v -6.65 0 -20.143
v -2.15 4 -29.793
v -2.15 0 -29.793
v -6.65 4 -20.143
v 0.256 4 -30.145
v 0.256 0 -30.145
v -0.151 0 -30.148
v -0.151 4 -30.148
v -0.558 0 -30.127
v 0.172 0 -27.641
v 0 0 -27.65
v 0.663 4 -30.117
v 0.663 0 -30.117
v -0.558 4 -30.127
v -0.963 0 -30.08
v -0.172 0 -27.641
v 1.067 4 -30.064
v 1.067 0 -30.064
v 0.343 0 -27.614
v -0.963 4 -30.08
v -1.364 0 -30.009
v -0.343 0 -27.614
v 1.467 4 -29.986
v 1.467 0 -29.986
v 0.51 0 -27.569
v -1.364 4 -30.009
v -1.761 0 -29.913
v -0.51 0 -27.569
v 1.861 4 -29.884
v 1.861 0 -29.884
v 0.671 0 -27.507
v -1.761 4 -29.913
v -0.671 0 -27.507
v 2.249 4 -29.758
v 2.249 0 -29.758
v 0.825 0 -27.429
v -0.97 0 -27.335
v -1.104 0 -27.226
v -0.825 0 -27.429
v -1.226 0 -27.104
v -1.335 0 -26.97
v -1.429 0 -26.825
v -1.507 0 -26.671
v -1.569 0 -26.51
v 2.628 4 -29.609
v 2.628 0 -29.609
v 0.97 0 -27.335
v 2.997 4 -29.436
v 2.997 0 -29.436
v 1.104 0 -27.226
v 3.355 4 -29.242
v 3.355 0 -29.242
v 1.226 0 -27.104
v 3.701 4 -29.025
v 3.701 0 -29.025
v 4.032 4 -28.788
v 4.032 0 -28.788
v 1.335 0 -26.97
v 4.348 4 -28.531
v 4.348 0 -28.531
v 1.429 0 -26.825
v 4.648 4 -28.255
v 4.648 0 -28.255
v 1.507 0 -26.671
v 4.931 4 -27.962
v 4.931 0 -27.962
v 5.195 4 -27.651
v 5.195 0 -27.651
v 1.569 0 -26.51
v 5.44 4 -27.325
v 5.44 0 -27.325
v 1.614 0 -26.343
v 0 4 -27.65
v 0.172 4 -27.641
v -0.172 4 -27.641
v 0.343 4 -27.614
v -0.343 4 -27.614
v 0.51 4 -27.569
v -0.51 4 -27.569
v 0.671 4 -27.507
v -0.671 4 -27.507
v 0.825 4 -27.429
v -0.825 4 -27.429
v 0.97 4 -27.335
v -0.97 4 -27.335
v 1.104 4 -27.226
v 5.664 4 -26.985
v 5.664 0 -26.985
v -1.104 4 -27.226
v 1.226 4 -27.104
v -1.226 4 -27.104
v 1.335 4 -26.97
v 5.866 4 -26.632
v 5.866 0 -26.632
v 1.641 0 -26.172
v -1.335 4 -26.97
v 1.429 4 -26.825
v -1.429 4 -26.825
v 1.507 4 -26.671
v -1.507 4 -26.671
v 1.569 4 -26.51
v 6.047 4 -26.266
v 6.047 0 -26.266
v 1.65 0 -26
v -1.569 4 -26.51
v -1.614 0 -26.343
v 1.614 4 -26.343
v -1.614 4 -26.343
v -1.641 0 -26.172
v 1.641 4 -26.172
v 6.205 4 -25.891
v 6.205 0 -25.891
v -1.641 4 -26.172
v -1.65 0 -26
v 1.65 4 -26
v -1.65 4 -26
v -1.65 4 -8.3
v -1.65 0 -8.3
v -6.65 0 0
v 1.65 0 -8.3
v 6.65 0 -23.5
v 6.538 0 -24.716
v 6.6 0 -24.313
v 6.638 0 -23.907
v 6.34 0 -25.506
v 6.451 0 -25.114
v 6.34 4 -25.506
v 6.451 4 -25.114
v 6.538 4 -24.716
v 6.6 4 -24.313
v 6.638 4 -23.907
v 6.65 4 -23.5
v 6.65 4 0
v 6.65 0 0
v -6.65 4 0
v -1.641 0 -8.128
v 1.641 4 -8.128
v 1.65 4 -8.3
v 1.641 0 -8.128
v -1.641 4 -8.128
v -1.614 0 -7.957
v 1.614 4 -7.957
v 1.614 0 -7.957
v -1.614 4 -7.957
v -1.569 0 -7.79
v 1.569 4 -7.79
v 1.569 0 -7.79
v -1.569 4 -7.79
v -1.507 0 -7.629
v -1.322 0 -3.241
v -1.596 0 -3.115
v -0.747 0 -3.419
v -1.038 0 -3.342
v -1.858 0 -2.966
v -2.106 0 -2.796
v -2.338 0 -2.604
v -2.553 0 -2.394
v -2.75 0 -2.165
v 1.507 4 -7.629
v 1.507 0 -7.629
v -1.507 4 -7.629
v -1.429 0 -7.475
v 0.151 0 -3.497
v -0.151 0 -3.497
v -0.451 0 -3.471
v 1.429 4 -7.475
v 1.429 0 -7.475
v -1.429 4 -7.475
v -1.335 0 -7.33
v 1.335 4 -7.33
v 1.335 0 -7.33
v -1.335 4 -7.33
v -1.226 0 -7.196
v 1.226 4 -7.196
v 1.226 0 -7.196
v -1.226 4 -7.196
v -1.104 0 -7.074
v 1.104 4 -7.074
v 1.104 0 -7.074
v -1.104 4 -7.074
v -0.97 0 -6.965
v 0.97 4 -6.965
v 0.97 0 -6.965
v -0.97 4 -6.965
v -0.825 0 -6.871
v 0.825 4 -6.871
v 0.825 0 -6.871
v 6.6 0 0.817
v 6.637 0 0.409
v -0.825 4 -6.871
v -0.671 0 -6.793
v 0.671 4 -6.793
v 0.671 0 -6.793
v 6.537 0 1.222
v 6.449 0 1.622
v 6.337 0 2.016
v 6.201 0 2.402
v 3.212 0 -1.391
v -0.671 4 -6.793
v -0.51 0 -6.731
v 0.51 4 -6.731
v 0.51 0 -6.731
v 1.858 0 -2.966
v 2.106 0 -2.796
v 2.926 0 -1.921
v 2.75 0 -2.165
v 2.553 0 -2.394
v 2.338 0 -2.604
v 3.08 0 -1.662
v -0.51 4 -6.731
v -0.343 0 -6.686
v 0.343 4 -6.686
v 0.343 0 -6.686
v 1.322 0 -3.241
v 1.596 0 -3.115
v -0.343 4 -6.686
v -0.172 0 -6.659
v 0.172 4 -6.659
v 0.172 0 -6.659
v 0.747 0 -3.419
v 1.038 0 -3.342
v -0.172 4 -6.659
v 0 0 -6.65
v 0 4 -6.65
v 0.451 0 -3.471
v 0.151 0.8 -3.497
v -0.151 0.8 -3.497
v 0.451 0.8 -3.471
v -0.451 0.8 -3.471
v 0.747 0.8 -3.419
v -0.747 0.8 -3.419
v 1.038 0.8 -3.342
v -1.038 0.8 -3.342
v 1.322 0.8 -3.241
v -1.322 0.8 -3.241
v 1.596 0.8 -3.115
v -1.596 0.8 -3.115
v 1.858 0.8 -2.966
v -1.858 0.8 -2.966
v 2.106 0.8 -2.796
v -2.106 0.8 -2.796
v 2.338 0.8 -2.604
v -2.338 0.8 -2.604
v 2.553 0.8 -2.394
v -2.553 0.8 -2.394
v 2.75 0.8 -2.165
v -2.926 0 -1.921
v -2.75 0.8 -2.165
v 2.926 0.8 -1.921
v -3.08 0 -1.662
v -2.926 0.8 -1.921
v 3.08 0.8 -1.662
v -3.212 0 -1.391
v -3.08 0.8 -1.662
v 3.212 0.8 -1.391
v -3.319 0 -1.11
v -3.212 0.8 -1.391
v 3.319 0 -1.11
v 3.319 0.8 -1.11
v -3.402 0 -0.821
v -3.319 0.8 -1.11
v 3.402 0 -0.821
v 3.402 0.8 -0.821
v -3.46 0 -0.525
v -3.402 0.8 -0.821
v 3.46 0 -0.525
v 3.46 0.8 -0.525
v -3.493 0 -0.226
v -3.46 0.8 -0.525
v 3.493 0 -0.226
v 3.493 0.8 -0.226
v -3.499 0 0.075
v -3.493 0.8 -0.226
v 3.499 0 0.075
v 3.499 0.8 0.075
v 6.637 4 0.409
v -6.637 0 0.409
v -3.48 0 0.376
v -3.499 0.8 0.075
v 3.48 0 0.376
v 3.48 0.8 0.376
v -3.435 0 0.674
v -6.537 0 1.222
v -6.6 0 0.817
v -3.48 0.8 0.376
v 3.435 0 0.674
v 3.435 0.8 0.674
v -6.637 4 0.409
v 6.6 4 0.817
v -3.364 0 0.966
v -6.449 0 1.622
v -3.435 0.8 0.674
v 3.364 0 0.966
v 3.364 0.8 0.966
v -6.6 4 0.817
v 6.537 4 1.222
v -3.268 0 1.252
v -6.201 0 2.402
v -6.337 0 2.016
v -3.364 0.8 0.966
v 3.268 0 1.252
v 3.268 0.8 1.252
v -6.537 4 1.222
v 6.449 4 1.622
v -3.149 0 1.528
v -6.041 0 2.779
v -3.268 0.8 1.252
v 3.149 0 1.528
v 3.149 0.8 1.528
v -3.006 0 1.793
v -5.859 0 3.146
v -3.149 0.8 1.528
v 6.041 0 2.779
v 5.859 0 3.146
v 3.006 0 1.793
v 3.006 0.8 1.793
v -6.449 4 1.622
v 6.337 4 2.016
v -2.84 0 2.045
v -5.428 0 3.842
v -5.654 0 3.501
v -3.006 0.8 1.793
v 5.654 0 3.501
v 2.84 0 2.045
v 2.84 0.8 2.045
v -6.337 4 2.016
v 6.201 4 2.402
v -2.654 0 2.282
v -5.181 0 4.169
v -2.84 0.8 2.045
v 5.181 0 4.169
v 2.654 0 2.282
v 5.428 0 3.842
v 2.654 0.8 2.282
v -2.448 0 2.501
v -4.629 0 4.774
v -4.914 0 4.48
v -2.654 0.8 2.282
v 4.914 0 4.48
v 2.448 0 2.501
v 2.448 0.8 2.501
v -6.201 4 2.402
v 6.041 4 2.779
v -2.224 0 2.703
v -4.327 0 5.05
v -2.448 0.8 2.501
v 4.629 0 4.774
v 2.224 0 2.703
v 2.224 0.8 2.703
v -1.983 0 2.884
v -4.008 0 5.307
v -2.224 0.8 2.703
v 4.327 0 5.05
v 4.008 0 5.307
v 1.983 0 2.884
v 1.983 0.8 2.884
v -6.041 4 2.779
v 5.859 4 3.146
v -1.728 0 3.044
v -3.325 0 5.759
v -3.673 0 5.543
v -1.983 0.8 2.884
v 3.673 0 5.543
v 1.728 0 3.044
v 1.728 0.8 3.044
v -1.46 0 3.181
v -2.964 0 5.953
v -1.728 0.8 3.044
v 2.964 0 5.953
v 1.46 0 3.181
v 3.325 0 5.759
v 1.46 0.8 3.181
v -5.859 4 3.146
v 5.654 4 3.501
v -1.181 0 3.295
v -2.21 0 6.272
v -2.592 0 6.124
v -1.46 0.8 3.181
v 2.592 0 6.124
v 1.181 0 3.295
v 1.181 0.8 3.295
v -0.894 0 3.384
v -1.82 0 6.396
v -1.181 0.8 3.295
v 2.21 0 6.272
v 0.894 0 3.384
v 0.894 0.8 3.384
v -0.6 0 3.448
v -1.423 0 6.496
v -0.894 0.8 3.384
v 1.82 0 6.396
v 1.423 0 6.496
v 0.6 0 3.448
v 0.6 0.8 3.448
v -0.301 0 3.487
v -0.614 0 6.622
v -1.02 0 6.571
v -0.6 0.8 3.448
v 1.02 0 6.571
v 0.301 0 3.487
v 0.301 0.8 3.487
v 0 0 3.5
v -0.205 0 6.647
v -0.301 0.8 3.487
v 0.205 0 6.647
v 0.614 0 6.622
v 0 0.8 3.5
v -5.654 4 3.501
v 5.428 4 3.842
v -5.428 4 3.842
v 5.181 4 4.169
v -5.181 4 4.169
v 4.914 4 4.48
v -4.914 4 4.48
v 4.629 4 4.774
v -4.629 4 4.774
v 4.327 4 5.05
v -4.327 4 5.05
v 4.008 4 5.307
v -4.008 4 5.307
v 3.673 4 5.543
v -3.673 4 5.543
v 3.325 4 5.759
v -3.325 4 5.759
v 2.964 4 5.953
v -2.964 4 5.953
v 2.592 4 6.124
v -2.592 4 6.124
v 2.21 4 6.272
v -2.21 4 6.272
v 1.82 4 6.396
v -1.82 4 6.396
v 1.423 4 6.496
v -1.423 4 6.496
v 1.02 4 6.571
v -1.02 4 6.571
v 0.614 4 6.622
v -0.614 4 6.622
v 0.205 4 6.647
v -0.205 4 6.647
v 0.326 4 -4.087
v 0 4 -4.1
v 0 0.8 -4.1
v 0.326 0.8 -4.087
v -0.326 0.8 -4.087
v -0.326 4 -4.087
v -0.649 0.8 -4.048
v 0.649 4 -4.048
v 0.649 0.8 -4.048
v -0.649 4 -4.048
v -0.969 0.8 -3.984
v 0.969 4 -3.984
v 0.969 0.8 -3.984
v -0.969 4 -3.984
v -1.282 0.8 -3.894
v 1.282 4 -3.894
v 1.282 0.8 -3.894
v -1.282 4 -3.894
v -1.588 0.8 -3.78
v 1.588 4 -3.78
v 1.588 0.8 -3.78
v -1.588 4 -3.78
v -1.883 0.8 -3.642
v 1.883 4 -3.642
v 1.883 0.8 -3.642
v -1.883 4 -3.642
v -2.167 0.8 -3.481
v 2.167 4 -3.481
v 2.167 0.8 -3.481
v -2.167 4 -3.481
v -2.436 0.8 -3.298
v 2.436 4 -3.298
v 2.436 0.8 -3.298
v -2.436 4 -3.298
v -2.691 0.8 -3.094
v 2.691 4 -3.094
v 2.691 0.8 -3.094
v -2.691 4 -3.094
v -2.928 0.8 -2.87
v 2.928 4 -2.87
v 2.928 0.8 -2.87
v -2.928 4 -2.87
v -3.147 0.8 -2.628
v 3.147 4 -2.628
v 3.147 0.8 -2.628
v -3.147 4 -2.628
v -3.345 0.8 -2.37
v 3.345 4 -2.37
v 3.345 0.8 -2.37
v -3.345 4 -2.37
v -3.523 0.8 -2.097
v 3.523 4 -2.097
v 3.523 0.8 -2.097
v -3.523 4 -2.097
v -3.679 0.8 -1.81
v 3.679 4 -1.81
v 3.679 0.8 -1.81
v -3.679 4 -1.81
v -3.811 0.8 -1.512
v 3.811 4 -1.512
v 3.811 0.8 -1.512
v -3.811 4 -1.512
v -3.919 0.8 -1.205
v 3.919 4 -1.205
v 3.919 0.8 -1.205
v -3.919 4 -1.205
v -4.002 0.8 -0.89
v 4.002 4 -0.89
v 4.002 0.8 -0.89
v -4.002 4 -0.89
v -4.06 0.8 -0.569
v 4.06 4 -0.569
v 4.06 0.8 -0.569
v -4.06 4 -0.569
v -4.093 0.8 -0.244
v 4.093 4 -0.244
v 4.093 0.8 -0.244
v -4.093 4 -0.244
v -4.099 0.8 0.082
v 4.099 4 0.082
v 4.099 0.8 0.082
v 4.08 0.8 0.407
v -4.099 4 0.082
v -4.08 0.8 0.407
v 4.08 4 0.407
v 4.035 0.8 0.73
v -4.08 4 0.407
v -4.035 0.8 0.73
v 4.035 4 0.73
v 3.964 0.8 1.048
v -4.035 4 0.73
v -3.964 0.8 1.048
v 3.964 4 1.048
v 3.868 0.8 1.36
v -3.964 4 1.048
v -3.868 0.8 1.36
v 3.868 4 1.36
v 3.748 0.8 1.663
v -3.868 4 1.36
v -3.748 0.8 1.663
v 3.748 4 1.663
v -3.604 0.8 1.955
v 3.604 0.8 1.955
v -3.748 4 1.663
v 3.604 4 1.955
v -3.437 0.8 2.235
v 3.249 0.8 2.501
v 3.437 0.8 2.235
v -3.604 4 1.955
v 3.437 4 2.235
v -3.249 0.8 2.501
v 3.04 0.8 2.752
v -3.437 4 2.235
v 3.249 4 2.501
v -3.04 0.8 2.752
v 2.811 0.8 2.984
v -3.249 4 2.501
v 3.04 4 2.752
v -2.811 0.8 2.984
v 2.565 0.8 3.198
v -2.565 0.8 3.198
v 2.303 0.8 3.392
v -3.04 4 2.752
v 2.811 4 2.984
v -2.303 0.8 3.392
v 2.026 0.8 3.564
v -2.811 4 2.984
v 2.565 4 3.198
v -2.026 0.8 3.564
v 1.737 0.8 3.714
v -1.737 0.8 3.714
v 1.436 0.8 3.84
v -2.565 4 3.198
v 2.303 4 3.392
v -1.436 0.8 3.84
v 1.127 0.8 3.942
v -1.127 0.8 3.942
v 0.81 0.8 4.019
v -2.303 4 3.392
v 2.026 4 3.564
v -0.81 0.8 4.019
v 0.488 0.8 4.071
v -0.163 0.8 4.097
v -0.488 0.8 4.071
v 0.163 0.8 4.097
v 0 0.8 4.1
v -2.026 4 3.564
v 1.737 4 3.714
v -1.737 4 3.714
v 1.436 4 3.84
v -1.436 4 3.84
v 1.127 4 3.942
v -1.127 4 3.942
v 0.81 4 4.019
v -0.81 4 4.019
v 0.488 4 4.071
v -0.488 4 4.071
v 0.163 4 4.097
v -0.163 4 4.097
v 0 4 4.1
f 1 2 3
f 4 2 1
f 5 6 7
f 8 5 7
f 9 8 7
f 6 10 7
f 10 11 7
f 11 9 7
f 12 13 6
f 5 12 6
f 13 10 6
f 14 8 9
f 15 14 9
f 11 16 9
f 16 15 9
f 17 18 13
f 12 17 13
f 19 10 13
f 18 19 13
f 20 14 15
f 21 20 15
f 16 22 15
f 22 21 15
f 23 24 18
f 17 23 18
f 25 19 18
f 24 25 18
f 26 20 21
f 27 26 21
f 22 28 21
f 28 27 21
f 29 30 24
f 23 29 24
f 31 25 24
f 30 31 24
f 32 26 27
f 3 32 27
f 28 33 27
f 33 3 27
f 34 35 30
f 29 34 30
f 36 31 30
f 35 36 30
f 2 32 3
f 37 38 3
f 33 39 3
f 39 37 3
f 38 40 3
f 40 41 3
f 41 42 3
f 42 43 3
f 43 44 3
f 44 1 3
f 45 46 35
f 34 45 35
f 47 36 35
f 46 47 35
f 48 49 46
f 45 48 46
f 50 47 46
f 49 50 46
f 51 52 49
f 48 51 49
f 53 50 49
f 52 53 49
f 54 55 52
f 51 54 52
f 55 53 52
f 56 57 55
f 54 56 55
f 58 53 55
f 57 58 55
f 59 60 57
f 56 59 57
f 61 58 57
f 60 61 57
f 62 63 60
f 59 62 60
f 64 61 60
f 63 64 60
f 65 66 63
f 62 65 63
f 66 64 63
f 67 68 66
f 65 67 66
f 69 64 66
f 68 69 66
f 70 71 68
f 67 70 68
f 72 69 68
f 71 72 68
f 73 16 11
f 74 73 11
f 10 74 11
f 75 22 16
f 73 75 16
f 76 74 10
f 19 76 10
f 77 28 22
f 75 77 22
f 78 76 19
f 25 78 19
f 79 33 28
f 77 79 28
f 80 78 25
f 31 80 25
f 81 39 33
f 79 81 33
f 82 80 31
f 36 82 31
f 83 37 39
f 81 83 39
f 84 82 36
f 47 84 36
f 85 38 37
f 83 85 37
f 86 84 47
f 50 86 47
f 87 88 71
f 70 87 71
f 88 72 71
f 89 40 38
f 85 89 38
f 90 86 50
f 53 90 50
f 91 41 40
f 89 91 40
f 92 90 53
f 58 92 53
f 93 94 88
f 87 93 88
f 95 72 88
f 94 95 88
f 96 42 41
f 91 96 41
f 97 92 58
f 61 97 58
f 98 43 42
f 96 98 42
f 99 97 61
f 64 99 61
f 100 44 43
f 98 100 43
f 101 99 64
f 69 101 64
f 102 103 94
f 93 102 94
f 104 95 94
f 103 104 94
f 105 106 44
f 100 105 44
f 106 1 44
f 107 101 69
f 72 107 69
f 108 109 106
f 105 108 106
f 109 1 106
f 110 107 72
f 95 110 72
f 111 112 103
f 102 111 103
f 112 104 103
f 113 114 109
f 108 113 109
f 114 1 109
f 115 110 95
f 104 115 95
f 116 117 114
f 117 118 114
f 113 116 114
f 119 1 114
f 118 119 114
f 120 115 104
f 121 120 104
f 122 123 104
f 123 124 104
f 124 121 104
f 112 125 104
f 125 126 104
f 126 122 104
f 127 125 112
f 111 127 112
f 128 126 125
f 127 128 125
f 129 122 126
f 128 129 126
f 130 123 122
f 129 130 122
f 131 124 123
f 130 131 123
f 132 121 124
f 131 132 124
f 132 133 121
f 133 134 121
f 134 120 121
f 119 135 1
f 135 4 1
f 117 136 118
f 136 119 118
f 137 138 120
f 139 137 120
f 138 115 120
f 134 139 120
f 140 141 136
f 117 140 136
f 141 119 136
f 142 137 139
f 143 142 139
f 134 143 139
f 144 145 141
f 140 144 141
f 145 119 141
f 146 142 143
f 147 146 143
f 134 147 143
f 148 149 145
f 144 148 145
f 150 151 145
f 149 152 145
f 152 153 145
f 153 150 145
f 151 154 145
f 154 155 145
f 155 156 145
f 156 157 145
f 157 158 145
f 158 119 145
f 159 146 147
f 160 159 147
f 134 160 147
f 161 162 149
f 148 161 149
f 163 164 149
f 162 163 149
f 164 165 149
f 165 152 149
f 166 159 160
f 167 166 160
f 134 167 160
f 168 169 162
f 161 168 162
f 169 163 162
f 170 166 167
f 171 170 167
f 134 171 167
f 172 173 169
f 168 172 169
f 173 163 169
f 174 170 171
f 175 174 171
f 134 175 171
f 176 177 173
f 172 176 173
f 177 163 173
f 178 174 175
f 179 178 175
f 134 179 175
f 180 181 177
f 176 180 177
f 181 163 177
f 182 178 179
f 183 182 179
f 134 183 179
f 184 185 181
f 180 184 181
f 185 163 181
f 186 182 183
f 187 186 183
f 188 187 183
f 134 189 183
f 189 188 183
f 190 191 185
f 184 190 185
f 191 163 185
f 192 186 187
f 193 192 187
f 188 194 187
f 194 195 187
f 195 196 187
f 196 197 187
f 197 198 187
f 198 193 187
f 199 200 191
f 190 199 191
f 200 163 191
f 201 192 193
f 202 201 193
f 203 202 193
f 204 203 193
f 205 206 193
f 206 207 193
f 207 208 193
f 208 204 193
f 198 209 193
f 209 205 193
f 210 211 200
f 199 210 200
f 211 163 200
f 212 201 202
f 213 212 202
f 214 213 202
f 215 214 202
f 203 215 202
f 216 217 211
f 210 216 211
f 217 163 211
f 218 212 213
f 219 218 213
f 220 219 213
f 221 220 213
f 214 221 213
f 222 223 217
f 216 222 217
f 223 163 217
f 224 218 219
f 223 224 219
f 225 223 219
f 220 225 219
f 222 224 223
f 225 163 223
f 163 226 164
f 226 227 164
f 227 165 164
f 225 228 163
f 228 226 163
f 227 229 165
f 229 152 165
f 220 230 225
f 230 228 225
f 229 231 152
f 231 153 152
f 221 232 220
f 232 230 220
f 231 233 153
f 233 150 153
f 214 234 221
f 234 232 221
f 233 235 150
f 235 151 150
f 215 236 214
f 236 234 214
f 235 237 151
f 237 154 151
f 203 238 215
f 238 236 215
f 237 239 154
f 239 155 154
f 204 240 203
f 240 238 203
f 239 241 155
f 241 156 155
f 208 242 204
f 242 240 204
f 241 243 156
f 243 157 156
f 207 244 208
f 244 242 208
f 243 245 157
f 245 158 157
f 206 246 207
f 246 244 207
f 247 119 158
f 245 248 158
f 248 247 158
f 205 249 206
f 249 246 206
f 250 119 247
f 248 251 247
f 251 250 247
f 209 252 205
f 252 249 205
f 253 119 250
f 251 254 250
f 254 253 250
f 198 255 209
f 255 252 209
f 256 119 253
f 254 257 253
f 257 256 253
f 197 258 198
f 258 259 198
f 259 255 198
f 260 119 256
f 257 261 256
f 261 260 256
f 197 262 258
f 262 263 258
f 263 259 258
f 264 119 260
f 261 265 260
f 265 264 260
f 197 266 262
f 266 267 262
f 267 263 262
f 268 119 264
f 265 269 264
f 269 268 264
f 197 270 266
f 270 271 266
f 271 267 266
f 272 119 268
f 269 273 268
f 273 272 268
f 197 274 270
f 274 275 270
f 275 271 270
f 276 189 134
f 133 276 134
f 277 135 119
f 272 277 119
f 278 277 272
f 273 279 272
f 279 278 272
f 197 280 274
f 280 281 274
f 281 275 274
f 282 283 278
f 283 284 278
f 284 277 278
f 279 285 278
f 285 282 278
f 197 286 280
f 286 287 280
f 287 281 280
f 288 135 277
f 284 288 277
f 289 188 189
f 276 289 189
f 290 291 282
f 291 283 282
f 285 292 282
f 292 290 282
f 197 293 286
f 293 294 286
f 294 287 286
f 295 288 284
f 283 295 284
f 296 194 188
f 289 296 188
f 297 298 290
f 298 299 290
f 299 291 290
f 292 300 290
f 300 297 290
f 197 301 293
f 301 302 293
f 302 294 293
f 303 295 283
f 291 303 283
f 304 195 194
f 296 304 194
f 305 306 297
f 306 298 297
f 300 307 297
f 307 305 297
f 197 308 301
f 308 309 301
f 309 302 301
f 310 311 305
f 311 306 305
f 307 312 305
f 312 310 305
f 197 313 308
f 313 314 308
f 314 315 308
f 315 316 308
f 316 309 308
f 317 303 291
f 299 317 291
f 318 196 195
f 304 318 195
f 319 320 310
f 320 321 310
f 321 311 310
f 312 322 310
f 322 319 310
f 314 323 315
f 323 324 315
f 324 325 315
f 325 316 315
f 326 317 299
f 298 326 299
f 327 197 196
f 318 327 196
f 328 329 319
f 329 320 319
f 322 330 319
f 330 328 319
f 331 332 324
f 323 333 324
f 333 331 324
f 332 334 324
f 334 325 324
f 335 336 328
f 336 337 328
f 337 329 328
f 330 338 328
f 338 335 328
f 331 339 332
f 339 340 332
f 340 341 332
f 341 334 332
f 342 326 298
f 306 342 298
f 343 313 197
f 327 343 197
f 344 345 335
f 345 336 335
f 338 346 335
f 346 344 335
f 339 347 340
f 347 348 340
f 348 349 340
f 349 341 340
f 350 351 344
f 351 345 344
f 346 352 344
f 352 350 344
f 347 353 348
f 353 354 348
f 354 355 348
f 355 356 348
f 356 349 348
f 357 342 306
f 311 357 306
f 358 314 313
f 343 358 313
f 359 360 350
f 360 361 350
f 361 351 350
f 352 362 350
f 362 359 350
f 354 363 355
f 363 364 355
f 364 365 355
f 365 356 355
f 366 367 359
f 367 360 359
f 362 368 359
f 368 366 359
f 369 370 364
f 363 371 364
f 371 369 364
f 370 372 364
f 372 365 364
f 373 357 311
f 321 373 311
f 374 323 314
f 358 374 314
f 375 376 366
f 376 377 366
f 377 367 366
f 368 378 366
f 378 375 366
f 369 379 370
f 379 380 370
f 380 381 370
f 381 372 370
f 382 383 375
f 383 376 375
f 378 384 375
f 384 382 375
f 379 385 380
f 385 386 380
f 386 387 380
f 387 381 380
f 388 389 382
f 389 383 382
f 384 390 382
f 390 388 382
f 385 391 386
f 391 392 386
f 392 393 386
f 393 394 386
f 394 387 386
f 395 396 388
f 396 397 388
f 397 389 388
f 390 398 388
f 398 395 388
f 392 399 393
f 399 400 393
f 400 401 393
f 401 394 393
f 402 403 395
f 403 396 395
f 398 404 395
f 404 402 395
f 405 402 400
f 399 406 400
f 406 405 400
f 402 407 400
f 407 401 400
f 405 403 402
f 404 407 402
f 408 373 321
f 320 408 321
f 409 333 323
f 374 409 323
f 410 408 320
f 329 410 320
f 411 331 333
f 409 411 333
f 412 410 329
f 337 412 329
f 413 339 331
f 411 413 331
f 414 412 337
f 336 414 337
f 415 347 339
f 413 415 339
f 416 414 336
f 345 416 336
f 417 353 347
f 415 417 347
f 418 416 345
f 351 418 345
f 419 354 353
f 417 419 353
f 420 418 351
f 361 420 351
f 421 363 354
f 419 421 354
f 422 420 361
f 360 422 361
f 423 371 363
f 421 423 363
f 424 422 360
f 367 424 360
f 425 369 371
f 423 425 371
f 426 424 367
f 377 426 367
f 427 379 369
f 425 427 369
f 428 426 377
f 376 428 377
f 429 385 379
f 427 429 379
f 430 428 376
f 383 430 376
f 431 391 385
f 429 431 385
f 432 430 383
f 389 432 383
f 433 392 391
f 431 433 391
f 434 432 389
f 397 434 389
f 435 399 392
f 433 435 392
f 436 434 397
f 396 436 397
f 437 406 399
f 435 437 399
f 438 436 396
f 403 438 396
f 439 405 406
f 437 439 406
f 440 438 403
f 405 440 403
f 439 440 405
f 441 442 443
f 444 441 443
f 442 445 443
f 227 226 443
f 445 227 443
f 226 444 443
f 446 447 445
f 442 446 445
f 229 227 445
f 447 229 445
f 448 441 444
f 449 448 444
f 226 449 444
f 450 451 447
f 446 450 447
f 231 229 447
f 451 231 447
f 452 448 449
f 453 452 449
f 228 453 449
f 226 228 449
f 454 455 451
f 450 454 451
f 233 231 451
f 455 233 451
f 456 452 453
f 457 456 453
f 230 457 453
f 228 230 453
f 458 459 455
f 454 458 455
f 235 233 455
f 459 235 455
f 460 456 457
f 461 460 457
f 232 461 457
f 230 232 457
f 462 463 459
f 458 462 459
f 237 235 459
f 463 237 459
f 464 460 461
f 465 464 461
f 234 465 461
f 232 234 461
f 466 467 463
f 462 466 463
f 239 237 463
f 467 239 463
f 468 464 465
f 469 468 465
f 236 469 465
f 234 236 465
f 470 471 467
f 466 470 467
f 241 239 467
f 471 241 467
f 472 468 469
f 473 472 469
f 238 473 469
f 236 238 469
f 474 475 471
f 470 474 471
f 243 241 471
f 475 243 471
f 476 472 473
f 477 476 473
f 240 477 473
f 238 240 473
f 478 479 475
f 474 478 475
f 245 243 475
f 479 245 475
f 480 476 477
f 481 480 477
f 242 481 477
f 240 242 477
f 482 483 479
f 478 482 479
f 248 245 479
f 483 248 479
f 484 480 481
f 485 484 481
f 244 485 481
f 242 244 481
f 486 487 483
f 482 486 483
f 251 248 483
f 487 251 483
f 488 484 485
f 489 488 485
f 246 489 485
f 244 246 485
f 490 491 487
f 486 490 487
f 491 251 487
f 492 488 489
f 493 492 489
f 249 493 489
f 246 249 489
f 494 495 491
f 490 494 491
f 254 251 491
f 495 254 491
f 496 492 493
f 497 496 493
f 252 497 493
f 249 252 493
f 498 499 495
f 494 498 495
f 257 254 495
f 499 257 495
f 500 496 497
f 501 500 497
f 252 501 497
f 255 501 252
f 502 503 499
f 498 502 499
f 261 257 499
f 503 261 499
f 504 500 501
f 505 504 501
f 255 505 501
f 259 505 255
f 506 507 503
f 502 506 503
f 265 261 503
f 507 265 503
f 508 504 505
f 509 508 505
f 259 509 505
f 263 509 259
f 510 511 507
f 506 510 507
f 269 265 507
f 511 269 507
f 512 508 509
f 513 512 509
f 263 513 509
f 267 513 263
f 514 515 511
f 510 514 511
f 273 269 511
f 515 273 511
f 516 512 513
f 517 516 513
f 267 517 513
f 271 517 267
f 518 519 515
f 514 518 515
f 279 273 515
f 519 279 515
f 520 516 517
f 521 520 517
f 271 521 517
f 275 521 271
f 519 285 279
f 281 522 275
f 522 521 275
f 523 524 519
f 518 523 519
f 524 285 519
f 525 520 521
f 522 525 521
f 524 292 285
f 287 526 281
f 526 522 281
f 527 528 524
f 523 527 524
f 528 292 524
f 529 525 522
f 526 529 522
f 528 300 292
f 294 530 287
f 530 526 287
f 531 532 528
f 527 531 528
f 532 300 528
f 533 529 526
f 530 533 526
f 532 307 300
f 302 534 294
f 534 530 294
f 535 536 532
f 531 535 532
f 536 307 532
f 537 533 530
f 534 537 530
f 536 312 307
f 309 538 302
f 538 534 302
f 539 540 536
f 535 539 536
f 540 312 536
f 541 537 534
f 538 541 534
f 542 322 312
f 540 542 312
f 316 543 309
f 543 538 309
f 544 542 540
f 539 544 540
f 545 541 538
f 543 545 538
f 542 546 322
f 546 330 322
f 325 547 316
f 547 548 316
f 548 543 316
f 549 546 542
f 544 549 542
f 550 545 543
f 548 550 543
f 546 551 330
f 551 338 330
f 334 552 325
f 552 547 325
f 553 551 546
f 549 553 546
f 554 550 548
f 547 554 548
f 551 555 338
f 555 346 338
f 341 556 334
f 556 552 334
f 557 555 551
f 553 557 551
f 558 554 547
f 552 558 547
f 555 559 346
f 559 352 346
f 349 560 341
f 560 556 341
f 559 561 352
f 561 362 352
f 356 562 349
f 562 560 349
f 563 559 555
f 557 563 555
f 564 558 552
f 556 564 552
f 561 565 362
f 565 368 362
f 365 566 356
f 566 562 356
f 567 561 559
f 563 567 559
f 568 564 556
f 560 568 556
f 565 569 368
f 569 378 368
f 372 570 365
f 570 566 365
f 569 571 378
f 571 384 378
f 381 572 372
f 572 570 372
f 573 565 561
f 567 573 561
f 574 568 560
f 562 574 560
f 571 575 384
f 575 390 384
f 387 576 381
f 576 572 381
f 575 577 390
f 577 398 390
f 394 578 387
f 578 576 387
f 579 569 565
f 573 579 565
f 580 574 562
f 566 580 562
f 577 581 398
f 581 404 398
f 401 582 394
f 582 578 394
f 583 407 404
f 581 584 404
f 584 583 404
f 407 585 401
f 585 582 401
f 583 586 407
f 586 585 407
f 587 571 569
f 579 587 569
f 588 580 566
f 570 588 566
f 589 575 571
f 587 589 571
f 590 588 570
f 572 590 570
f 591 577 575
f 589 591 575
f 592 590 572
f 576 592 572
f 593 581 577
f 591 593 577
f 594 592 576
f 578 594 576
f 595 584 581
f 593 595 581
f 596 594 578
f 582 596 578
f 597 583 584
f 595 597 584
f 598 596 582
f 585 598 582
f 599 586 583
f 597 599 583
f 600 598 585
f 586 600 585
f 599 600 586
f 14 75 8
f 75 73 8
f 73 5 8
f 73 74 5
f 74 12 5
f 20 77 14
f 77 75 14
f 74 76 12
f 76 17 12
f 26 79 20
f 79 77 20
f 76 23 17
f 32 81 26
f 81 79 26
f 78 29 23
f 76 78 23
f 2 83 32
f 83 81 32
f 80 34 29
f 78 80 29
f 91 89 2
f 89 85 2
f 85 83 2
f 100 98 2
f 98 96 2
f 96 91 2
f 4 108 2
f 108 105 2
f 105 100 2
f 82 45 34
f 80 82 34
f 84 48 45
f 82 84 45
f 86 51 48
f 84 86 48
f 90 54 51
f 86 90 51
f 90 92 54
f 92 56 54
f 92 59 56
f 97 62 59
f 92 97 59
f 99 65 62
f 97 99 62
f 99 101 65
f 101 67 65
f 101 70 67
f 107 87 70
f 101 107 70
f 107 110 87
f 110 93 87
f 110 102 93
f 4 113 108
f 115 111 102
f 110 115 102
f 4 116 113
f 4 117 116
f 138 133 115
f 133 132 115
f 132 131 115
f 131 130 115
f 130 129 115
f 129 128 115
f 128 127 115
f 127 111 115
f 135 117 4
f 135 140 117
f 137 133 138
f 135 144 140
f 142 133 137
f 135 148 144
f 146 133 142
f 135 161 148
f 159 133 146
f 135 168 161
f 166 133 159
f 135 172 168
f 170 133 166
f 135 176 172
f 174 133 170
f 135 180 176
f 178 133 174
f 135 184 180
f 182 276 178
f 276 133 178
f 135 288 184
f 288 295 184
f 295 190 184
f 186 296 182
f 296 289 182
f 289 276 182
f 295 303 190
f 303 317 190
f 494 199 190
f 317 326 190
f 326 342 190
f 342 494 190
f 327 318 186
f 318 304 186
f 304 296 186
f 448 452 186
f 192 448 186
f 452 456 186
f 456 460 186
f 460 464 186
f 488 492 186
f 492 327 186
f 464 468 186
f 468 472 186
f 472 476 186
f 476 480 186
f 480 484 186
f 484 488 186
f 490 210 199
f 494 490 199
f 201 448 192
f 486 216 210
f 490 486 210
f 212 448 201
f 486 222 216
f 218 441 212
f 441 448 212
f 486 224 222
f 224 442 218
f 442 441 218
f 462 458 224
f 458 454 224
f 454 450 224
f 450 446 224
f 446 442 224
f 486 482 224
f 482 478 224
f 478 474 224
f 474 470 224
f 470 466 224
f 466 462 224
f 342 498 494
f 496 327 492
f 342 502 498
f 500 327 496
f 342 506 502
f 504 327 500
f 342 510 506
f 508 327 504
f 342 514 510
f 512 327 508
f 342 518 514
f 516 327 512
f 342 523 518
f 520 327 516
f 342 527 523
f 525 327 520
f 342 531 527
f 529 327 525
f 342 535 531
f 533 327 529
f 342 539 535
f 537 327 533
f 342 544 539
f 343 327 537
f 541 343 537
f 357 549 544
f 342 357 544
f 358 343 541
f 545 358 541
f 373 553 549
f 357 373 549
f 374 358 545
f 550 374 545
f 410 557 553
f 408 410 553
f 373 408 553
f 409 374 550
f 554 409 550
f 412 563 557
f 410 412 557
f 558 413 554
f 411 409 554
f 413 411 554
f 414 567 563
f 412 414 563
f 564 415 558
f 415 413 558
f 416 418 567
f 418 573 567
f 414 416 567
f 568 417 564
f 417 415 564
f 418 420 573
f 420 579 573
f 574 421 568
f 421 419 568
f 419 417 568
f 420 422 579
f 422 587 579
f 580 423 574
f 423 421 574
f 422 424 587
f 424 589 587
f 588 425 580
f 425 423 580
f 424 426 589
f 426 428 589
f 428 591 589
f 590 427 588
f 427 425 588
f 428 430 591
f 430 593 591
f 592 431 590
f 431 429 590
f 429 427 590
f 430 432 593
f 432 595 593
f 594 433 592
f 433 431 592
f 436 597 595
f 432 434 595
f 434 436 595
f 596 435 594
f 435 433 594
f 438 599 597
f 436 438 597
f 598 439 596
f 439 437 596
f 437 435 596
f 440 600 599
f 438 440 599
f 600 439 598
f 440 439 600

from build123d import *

# Parameters (mm, degrees)
SKETCH1_R           = 6.65
SKETCH1_R_2         = 4.1
BOSS_EXTRUDE1_DEPTH = 4
SKETCH2_R           = 4.1
BOSS_EXTRUDE2_DEPTH = 0.8
SKETCH3_R           = 3.5
CUT_EXTRUDE1_DEPTH  = 1.8
CUT_EXTRUDE2_DEPTH  = 5


with BuildPart() as part:
    # Sketch1 → Boss-Extrude1 (new body)
    with BuildSketch(Plane(origin=(0, 0, 0), x_dir=(1, 0, 0), z_dir=(0, 1, 0))):
        with BuildLine():
            Line((-6.65, 23.5), (-6.65, 0))
            ThreePointArc((-6.65, 0), (-4.702260096, 4.702260094), (-2e-09, 6.65))
            ThreePointArc((-2e-09, 6.65), (4.702260094, 4.702260096), (6.65, 0))
            Line((6.65, 0), (6.65, 23.5))
            ThreePointArc((6.65, 23.5), (0, 30.15), (-6.65, 23.5))
        make_face()
        with BuildLine():
            ThreePointArc((1.65, 8.3), (1.166726188, 7.13327381), (-2e-09, 6.65))
            ThreePointArc((-2e-09, 6.65), (-1.16672619, 7.133273812), (-1.65, 8.3))
            Line((-1.65, 8.3), (-1.65, 26))
            ThreePointArc((-1.65, 26), (0, 27.65), (1.65, 26))
            Line((1.65, 26), (1.65, 8.3))
        make_face(mode=Mode.SUBTRACT)
        Circle(SKETCH1_R)
        Circle(SKETCH1_R_2, mode=Mode.SUBTRACT)
    extrude(amount=BOSS_EXTRUDE1_DEPTH)

    # Sketch2 → Boss-Extrude2 (add)
    with BuildSketch(Plane(origin=(0, 0, 0), x_dir=(1, 0, 0), z_dir=(0, 1, 0))):
        Circle(SKETCH2_R)
    extrude(amount=BOSS_EXTRUDE2_DEPTH)

    # Sketch3 → Cut-Extrude1 (cut, through all)
    with BuildSketch(Plane(origin=(0, 0.8, 0), x_dir=(1, 0, 0), z_dir=(0, 1, 0))):
        Circle(SKETCH3_R)
    extrude(amount=-CUT_EXTRUDE1_DEPTH, mode=Mode.SUBTRACT)

    # Sketch4 → Cut-Extrude2 (cut, through all)
    with BuildSketch(Plane.XZ):
        with BuildLine():
            Line((-6.65, -20.142571947), (-2.15, -29.792853089))
            ThreePointArc((-2.15, -29.792853089), (-5.409251335, -27.368139087), (-6.65, -23.5))
            Line((-6.65, -23.5), (-6.65, -20.142571947))
        make_face()
    extrude(amount=-CUT_EXTRUDE2_DEPTH, mode=Mode.SUBTRACT)


solid = part.part
